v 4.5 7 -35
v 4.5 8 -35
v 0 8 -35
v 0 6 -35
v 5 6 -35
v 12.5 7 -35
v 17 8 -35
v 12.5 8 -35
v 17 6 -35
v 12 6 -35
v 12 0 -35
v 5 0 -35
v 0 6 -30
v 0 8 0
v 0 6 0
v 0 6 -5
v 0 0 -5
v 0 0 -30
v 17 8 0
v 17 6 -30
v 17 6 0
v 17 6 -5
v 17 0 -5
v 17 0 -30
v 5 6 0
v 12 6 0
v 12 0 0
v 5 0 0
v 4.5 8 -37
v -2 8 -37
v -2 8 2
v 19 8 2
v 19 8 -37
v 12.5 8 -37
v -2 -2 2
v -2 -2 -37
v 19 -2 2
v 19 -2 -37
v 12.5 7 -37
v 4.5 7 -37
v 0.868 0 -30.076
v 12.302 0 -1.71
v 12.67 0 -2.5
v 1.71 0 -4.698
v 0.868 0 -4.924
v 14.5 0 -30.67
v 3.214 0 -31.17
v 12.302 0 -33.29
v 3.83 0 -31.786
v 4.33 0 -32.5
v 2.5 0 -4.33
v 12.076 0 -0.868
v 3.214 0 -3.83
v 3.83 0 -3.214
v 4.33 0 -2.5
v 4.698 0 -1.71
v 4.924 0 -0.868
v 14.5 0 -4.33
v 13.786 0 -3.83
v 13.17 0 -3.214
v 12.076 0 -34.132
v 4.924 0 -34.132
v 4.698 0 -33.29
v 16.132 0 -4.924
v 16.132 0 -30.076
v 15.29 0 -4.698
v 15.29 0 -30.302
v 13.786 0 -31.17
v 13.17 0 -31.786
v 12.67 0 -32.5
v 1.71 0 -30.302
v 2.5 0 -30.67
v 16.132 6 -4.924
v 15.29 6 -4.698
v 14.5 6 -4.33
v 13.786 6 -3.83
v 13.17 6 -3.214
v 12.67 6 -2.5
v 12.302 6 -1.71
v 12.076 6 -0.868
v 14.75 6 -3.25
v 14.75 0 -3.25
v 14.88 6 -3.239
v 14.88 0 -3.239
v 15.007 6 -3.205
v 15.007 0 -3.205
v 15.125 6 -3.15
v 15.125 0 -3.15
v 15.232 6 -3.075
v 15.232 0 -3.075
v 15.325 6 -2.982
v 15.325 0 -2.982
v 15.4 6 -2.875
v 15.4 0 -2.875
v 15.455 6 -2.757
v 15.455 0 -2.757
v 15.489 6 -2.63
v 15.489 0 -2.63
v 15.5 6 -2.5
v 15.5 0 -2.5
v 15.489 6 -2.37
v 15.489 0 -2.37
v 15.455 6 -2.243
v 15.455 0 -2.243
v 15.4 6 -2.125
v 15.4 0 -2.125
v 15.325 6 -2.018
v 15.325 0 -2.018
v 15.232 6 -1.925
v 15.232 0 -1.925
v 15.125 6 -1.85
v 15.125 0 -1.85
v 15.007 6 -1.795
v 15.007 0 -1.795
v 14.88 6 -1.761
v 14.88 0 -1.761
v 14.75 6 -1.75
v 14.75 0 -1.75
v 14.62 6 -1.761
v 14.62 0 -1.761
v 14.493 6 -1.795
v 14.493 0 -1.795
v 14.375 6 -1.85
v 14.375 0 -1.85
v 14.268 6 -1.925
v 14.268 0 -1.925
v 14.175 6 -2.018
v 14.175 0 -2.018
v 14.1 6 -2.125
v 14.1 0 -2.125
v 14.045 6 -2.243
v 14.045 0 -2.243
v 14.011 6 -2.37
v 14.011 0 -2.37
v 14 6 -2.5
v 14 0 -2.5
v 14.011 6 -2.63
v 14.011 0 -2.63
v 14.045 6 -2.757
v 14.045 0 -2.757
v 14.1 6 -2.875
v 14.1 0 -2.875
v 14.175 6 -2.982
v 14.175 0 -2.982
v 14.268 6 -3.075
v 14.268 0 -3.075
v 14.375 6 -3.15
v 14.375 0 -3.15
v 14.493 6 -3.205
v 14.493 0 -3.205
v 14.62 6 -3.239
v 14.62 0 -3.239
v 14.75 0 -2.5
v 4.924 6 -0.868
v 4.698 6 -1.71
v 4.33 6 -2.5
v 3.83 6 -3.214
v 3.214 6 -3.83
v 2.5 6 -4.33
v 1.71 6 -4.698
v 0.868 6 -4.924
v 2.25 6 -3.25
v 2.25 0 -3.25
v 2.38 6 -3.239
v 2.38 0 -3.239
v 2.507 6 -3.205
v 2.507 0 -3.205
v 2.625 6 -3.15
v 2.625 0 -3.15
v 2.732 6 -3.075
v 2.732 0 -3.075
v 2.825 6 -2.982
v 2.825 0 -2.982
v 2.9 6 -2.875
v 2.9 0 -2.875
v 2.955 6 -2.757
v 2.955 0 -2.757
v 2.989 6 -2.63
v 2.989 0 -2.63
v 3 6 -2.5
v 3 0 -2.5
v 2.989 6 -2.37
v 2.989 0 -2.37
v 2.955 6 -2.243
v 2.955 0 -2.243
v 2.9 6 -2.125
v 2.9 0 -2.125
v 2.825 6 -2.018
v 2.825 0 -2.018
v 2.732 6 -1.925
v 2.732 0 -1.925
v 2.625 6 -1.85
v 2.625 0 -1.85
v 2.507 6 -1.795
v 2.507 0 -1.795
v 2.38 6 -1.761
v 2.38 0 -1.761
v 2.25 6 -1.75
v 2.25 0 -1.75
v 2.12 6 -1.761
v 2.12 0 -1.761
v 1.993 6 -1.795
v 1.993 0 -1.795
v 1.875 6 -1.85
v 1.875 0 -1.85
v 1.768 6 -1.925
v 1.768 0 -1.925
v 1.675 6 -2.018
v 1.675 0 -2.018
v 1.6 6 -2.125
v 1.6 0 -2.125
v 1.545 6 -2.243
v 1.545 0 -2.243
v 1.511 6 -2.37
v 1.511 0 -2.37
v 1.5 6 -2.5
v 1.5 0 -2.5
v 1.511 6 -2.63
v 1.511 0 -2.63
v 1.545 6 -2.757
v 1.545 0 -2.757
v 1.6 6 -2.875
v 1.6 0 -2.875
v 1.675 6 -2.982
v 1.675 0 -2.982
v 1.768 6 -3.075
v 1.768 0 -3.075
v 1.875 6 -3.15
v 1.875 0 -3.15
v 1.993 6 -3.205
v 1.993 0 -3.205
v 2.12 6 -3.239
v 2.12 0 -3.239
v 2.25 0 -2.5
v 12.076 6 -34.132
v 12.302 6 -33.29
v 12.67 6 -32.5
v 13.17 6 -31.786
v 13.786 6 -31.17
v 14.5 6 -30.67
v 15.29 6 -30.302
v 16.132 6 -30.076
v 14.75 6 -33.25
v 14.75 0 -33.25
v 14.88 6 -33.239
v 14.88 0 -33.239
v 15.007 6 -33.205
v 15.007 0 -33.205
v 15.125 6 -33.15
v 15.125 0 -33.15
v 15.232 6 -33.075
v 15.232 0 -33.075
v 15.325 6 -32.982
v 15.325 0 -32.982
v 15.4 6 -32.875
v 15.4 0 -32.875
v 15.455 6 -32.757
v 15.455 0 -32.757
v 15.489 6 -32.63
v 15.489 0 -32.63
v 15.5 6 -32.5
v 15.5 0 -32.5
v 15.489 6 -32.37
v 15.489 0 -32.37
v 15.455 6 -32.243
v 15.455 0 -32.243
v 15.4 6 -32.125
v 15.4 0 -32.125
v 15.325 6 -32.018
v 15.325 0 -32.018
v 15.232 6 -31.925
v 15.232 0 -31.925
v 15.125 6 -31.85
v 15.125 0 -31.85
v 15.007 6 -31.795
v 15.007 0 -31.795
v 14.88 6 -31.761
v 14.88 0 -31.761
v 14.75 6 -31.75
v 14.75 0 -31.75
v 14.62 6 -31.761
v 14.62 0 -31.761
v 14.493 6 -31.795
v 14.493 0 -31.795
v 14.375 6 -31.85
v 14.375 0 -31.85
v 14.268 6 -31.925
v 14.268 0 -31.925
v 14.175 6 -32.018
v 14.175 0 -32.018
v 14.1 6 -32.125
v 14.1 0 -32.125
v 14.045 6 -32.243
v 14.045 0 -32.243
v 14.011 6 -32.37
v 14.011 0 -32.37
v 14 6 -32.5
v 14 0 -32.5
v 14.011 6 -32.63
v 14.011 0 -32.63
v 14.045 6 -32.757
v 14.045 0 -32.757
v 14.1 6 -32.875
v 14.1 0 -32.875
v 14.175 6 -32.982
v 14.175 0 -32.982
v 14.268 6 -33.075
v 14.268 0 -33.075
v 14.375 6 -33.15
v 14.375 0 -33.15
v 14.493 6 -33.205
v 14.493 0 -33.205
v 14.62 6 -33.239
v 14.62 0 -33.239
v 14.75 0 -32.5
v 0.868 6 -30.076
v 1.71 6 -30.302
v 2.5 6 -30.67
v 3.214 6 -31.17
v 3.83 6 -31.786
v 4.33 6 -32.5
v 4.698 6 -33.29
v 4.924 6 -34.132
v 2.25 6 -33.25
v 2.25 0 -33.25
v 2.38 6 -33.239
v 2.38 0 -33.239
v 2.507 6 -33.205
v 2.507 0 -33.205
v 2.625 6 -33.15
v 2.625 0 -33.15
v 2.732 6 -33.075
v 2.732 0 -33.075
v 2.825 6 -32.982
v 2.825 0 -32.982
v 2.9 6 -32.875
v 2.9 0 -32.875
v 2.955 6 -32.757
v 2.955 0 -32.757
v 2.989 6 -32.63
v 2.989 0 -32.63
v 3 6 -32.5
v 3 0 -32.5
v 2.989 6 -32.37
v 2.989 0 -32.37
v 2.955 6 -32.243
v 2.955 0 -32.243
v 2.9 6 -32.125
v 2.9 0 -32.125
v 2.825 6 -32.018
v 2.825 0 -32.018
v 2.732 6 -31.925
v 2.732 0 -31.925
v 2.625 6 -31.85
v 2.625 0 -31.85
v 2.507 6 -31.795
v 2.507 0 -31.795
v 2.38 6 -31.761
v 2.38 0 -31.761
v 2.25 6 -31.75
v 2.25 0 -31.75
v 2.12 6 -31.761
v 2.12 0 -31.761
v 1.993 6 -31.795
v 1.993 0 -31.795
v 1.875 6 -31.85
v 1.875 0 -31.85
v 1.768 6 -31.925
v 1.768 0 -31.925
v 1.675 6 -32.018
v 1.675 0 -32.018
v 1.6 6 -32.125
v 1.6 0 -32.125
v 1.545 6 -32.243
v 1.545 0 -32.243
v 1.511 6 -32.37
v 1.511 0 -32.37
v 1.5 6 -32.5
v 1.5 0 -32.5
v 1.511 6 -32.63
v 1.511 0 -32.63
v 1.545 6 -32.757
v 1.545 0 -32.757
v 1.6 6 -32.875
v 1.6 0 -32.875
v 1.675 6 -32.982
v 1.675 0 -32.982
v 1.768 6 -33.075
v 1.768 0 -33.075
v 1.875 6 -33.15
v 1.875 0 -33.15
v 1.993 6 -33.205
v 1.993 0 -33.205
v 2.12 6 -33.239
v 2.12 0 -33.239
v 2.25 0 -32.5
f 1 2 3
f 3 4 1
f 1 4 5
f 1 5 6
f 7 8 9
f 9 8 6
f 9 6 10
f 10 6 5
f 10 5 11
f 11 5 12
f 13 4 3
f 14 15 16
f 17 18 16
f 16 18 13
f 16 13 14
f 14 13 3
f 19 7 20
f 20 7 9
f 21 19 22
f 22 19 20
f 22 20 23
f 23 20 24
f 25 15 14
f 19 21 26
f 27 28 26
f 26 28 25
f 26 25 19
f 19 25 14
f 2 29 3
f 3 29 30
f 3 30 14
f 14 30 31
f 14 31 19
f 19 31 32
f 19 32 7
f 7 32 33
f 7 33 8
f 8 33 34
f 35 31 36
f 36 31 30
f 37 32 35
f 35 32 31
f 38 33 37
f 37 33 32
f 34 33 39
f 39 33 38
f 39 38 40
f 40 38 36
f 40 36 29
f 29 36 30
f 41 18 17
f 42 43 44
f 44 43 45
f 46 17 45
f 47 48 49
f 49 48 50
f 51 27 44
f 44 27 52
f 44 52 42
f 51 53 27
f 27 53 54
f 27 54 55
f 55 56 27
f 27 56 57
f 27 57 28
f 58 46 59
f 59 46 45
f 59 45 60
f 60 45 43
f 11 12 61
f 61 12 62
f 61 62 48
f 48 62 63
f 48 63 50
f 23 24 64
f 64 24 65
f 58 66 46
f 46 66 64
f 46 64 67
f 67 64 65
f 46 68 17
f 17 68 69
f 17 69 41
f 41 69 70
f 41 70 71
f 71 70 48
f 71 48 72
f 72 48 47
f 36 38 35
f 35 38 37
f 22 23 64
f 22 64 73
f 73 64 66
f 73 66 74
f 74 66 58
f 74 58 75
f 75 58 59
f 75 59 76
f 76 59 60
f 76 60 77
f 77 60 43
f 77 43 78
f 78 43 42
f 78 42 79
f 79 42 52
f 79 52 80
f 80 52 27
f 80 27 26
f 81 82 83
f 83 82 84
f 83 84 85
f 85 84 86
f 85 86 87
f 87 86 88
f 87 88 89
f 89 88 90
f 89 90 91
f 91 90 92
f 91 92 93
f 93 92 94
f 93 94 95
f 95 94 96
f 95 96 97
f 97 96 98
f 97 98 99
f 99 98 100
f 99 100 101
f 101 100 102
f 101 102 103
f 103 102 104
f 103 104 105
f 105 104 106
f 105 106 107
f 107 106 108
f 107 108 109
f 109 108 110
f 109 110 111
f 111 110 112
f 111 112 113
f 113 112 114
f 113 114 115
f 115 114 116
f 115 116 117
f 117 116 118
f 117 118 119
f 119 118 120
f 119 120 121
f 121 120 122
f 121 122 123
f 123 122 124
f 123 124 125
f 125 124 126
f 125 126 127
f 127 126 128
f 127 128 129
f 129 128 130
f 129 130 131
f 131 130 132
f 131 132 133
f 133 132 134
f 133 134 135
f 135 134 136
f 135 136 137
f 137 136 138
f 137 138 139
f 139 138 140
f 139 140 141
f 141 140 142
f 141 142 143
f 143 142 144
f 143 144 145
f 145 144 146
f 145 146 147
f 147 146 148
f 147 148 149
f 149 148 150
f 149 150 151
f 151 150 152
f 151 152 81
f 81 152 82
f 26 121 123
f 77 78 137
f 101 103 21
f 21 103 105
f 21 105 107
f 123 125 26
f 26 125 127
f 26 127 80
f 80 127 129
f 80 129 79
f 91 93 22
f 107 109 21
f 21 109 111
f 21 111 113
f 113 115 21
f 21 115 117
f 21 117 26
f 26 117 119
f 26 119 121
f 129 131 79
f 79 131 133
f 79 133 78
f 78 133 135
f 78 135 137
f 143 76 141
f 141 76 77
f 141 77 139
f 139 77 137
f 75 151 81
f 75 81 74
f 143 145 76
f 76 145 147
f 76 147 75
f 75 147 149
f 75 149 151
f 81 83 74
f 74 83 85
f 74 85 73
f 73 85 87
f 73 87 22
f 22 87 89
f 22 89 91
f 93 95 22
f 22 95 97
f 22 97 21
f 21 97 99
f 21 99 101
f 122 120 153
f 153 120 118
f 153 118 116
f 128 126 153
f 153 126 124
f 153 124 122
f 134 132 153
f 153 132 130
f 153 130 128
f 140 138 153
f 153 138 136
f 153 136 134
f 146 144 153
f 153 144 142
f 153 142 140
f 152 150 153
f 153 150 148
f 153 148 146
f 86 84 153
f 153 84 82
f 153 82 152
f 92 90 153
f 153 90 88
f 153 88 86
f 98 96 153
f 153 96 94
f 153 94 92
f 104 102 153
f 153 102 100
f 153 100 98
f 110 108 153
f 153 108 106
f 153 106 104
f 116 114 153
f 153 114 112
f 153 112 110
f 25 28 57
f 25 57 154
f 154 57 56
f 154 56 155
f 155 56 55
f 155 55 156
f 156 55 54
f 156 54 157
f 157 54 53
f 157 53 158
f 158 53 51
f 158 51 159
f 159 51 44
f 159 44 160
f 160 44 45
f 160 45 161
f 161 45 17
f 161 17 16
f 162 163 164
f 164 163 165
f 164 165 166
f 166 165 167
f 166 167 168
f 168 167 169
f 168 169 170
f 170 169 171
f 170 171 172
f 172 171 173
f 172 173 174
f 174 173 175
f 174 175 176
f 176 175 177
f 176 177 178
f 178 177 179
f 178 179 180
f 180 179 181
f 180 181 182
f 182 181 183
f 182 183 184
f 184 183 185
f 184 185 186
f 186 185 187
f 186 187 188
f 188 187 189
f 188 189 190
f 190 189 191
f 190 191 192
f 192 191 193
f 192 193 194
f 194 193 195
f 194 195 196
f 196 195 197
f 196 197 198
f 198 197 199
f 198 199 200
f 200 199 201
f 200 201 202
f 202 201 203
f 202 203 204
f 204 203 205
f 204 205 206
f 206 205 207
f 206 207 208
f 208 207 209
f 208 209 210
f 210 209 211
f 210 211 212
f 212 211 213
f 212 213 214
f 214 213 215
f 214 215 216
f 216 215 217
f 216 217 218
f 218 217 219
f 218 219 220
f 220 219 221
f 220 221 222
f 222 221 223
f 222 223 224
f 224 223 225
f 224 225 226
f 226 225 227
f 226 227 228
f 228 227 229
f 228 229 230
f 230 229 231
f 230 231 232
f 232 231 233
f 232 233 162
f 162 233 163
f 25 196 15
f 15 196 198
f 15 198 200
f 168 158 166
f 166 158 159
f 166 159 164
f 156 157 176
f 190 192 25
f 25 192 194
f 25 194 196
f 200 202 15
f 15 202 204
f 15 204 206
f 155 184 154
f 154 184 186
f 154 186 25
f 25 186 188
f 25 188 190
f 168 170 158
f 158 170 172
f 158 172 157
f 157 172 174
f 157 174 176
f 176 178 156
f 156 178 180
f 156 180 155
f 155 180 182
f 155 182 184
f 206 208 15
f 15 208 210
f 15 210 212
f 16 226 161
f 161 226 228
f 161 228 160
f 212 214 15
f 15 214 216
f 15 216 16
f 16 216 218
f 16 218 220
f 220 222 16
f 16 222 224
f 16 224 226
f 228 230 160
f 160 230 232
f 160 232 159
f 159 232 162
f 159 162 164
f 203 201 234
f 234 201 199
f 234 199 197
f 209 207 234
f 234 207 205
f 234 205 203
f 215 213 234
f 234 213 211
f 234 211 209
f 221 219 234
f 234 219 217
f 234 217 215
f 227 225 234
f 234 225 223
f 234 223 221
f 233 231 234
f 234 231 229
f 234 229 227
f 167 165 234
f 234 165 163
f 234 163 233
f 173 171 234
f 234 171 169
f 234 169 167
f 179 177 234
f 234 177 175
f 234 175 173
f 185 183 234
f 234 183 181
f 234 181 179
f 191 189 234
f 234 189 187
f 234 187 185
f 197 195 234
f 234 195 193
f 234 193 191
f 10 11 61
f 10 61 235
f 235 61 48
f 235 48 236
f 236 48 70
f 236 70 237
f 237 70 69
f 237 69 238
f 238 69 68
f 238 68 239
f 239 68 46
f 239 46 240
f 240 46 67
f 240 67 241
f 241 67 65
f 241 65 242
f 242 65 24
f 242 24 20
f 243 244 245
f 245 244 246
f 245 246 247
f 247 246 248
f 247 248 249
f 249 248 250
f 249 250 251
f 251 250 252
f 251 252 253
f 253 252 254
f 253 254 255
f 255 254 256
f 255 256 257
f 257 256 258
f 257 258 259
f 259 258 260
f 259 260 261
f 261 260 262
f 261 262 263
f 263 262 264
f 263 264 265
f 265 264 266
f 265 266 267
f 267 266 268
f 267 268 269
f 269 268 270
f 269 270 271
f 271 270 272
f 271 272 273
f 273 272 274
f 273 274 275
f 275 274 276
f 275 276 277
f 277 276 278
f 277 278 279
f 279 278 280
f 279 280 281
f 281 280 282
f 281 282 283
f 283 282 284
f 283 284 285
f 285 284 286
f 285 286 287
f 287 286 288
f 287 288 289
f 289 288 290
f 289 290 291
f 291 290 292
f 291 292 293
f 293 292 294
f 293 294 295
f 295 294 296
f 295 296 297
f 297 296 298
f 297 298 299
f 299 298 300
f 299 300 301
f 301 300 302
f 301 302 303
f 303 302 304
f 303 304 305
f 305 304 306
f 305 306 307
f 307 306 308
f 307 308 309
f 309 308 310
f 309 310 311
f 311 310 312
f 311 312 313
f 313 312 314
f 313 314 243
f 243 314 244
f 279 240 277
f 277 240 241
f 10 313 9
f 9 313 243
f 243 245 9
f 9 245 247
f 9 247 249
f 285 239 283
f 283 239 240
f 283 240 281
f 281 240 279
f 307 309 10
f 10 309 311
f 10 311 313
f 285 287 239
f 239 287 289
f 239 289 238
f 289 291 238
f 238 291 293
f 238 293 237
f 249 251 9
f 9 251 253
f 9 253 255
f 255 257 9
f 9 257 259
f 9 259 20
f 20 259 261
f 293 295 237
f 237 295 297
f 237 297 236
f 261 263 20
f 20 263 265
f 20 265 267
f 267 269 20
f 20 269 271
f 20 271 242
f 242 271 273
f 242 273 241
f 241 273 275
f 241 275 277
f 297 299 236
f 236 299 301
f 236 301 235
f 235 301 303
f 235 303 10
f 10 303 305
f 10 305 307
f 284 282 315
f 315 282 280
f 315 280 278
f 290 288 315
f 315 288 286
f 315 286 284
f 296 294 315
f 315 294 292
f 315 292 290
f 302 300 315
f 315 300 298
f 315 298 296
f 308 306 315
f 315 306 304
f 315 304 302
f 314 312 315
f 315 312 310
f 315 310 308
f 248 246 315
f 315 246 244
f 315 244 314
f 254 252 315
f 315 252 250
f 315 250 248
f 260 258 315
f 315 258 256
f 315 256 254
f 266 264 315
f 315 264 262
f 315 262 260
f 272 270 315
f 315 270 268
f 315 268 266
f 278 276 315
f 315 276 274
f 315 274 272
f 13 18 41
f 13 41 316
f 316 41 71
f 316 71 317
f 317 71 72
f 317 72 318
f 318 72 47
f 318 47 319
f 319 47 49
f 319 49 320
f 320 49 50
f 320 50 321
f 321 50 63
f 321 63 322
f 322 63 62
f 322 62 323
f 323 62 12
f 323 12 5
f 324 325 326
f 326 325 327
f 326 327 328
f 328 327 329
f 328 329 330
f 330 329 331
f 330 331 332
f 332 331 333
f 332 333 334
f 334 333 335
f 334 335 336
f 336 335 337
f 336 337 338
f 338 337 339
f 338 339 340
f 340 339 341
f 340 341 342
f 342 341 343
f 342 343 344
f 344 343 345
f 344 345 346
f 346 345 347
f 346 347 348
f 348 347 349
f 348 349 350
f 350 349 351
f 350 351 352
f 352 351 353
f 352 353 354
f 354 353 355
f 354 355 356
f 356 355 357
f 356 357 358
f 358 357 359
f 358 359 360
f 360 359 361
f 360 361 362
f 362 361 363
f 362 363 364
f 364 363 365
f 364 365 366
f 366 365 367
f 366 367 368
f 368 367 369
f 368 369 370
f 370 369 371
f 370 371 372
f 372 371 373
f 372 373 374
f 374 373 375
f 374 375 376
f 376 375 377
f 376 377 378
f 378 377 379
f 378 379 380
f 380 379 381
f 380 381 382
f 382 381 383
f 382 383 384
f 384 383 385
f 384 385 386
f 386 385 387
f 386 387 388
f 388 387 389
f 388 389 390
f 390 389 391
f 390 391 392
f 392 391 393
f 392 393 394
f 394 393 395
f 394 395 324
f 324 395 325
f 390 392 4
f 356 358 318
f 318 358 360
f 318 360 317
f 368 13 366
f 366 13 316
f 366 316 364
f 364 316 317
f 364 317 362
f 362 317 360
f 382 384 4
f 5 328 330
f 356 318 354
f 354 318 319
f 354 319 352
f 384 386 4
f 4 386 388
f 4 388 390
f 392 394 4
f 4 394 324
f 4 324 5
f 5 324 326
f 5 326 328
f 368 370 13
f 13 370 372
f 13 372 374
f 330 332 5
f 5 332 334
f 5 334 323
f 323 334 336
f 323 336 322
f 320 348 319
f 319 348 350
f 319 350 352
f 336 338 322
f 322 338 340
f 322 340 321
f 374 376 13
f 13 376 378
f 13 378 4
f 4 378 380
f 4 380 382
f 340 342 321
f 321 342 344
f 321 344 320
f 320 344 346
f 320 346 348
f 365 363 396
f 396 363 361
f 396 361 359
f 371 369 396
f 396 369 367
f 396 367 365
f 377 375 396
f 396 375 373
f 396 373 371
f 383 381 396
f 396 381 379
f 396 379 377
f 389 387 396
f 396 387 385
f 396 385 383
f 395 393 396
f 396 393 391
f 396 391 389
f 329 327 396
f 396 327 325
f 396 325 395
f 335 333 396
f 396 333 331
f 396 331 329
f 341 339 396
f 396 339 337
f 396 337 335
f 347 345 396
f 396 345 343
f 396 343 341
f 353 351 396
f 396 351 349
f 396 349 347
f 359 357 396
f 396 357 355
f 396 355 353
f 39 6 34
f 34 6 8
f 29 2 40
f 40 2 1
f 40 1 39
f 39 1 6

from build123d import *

# Parameters (mm, degrees)
SKETCH1_W           = 21
SKETCH1_H           = 39
SKETCH1_W_2         = 17
SKETCH1_H_2         = 35
BOSS_EXTRUDE1_DEPTH = 8
SKETCH2_W           = 21
SKETCH2_H           = 39
BOSS_EXTRUDE2_DEPTH = 2
SKETCH3_R           = 0.75
BOSS_EXTRUDE3_DEPTH = 6
CUT_EXTRUDE1_REACH  = 46.113
SKETCH4_W           = 8
SKETCH4_H           = 1


with BuildPart() as part:
    # Sketch1 → Boss-Extrude1 (new body)
    with BuildSketch(Plane(origin=(0, 0, 0), x_dir=(1, 0, 0), z_dir=(0, 1, 0))):
        with Locations((8.5, 17.5)):
            Rectangle(SKETCH1_W, SKETCH1_H)
        with Locations((8.5, 17.5)):
            Rectangle(SKETCH1_W_2, SKETCH1_H_2, mode=Mode.SUBTRACT)
    extrude(amount=BOSS_EXTRUDE1_DEPTH)

    # Sketch2 → Boss-Extrude2 (add)
    with BuildSketch(Plane.XZ):
        with Locations((8.5, -17.5)):
            Rectangle(SKETCH2_W, SKETCH2_H)
    extrude(amount=BOSS_EXTRUDE2_DEPTH)

    # Sketch3 → Boss-Extrude3 (add)
    # profile 1 of 4: a face of its own
    with BuildSketch(Plane(origin=(0, 0, 0), x_dir=(1, 0, 0), z_dir=(0, 1, 0))):
        with BuildLine():
            Line((0, 30), (0, 35))
            Line((0, 35), (5, 35))
            ThreePointArc((5, 35), (3.535533906, 31.464466094), (0, 30))
        make_face()
        with Locations(Location((2.25, 32.5, 0), (0, 0, 270))):
            Circle(SKETCH3_R, mode=Mode.SUBTRACT)
    # profile 2 of 4: a face of its own
    with BuildSketch(Plane(origin=(0, 0, 0), x_dir=(1, 0, 0), z_dir=(0, 1, 0))):
        with BuildLine():
            Line((17, 0), (12, 0))
            ThreePointArc((12, 0), (13.464466094, 3.535533906), (17, 5))
            Line((17, 5), (17, 0))
        make_face()
        with Locations(Location((14.75, 2.5, 0), (0, 0, 270))):
            Circle(SKETCH3_R, mode=Mode.SUBTRACT)
    # profile 3 of 4: a face of its own
    with BuildSketch(Plane(origin=(0, 0, 0), x_dir=(1, 0, 0), z_dir=(0, 1, 0))):
        with BuildLine():
            Line((17, 35), (12, 35))
            ThreePointArc((12, 35), (13.464466094, 31.464466094), (17, 30))
            Line((17, 30), (17, 35))
        make_face()
        with Locations(Location((14.75, 32.5, 0), (0, 0, 270))):
            Circle(SKETCH3_R, mode=Mode.SUBTRACT)
    # profile 4 of 4: a face of its own
    with BuildSketch(Plane(origin=(0, 0, 0), x_dir=(1, 0, 0), z_dir=(0, 1, 0))):
        with BuildLine():
            Line((0, 0), (0, 5))
            ThreePointArc((0, 5), (3.535533906, 3.535533906), (5, 0))
            Line((5, 0), (0, 0))
        make_face()
        with Locations(Location((2.25, 2.5, 0), (0, 0, 270))):
            Circle(SKETCH3_R, mode=Mode.SUBTRACT)
    extrude(amount=BOSS_EXTRUDE3_DEPTH)

    # Sketch4 → Cut-Extrude1 (cut, up to next)
    with BuildSketch(Plane(origin=(0, 0, -37), x_dir=(-1, 0, 0), z_dir=(0, 0, -1)), mode=Mode.PRIVATE) as cut_extrude1_sk1:
        with Locations((-8.5, 7.5)):
            Rectangle(SKETCH4_W, SKETCH4_H)
    cut_extrude1_tool1 = extrude(cut_extrude1_sk1.sketch, amount=-CUT_EXTRUDE1_REACH, mode=Mode.PRIVATE) & part.part
    add(cut_extrude1_tool1.solids().sort_by_distance((8.5, 7.5, -37))[0], mode=Mode.SUBTRACT)


solid = part.part
